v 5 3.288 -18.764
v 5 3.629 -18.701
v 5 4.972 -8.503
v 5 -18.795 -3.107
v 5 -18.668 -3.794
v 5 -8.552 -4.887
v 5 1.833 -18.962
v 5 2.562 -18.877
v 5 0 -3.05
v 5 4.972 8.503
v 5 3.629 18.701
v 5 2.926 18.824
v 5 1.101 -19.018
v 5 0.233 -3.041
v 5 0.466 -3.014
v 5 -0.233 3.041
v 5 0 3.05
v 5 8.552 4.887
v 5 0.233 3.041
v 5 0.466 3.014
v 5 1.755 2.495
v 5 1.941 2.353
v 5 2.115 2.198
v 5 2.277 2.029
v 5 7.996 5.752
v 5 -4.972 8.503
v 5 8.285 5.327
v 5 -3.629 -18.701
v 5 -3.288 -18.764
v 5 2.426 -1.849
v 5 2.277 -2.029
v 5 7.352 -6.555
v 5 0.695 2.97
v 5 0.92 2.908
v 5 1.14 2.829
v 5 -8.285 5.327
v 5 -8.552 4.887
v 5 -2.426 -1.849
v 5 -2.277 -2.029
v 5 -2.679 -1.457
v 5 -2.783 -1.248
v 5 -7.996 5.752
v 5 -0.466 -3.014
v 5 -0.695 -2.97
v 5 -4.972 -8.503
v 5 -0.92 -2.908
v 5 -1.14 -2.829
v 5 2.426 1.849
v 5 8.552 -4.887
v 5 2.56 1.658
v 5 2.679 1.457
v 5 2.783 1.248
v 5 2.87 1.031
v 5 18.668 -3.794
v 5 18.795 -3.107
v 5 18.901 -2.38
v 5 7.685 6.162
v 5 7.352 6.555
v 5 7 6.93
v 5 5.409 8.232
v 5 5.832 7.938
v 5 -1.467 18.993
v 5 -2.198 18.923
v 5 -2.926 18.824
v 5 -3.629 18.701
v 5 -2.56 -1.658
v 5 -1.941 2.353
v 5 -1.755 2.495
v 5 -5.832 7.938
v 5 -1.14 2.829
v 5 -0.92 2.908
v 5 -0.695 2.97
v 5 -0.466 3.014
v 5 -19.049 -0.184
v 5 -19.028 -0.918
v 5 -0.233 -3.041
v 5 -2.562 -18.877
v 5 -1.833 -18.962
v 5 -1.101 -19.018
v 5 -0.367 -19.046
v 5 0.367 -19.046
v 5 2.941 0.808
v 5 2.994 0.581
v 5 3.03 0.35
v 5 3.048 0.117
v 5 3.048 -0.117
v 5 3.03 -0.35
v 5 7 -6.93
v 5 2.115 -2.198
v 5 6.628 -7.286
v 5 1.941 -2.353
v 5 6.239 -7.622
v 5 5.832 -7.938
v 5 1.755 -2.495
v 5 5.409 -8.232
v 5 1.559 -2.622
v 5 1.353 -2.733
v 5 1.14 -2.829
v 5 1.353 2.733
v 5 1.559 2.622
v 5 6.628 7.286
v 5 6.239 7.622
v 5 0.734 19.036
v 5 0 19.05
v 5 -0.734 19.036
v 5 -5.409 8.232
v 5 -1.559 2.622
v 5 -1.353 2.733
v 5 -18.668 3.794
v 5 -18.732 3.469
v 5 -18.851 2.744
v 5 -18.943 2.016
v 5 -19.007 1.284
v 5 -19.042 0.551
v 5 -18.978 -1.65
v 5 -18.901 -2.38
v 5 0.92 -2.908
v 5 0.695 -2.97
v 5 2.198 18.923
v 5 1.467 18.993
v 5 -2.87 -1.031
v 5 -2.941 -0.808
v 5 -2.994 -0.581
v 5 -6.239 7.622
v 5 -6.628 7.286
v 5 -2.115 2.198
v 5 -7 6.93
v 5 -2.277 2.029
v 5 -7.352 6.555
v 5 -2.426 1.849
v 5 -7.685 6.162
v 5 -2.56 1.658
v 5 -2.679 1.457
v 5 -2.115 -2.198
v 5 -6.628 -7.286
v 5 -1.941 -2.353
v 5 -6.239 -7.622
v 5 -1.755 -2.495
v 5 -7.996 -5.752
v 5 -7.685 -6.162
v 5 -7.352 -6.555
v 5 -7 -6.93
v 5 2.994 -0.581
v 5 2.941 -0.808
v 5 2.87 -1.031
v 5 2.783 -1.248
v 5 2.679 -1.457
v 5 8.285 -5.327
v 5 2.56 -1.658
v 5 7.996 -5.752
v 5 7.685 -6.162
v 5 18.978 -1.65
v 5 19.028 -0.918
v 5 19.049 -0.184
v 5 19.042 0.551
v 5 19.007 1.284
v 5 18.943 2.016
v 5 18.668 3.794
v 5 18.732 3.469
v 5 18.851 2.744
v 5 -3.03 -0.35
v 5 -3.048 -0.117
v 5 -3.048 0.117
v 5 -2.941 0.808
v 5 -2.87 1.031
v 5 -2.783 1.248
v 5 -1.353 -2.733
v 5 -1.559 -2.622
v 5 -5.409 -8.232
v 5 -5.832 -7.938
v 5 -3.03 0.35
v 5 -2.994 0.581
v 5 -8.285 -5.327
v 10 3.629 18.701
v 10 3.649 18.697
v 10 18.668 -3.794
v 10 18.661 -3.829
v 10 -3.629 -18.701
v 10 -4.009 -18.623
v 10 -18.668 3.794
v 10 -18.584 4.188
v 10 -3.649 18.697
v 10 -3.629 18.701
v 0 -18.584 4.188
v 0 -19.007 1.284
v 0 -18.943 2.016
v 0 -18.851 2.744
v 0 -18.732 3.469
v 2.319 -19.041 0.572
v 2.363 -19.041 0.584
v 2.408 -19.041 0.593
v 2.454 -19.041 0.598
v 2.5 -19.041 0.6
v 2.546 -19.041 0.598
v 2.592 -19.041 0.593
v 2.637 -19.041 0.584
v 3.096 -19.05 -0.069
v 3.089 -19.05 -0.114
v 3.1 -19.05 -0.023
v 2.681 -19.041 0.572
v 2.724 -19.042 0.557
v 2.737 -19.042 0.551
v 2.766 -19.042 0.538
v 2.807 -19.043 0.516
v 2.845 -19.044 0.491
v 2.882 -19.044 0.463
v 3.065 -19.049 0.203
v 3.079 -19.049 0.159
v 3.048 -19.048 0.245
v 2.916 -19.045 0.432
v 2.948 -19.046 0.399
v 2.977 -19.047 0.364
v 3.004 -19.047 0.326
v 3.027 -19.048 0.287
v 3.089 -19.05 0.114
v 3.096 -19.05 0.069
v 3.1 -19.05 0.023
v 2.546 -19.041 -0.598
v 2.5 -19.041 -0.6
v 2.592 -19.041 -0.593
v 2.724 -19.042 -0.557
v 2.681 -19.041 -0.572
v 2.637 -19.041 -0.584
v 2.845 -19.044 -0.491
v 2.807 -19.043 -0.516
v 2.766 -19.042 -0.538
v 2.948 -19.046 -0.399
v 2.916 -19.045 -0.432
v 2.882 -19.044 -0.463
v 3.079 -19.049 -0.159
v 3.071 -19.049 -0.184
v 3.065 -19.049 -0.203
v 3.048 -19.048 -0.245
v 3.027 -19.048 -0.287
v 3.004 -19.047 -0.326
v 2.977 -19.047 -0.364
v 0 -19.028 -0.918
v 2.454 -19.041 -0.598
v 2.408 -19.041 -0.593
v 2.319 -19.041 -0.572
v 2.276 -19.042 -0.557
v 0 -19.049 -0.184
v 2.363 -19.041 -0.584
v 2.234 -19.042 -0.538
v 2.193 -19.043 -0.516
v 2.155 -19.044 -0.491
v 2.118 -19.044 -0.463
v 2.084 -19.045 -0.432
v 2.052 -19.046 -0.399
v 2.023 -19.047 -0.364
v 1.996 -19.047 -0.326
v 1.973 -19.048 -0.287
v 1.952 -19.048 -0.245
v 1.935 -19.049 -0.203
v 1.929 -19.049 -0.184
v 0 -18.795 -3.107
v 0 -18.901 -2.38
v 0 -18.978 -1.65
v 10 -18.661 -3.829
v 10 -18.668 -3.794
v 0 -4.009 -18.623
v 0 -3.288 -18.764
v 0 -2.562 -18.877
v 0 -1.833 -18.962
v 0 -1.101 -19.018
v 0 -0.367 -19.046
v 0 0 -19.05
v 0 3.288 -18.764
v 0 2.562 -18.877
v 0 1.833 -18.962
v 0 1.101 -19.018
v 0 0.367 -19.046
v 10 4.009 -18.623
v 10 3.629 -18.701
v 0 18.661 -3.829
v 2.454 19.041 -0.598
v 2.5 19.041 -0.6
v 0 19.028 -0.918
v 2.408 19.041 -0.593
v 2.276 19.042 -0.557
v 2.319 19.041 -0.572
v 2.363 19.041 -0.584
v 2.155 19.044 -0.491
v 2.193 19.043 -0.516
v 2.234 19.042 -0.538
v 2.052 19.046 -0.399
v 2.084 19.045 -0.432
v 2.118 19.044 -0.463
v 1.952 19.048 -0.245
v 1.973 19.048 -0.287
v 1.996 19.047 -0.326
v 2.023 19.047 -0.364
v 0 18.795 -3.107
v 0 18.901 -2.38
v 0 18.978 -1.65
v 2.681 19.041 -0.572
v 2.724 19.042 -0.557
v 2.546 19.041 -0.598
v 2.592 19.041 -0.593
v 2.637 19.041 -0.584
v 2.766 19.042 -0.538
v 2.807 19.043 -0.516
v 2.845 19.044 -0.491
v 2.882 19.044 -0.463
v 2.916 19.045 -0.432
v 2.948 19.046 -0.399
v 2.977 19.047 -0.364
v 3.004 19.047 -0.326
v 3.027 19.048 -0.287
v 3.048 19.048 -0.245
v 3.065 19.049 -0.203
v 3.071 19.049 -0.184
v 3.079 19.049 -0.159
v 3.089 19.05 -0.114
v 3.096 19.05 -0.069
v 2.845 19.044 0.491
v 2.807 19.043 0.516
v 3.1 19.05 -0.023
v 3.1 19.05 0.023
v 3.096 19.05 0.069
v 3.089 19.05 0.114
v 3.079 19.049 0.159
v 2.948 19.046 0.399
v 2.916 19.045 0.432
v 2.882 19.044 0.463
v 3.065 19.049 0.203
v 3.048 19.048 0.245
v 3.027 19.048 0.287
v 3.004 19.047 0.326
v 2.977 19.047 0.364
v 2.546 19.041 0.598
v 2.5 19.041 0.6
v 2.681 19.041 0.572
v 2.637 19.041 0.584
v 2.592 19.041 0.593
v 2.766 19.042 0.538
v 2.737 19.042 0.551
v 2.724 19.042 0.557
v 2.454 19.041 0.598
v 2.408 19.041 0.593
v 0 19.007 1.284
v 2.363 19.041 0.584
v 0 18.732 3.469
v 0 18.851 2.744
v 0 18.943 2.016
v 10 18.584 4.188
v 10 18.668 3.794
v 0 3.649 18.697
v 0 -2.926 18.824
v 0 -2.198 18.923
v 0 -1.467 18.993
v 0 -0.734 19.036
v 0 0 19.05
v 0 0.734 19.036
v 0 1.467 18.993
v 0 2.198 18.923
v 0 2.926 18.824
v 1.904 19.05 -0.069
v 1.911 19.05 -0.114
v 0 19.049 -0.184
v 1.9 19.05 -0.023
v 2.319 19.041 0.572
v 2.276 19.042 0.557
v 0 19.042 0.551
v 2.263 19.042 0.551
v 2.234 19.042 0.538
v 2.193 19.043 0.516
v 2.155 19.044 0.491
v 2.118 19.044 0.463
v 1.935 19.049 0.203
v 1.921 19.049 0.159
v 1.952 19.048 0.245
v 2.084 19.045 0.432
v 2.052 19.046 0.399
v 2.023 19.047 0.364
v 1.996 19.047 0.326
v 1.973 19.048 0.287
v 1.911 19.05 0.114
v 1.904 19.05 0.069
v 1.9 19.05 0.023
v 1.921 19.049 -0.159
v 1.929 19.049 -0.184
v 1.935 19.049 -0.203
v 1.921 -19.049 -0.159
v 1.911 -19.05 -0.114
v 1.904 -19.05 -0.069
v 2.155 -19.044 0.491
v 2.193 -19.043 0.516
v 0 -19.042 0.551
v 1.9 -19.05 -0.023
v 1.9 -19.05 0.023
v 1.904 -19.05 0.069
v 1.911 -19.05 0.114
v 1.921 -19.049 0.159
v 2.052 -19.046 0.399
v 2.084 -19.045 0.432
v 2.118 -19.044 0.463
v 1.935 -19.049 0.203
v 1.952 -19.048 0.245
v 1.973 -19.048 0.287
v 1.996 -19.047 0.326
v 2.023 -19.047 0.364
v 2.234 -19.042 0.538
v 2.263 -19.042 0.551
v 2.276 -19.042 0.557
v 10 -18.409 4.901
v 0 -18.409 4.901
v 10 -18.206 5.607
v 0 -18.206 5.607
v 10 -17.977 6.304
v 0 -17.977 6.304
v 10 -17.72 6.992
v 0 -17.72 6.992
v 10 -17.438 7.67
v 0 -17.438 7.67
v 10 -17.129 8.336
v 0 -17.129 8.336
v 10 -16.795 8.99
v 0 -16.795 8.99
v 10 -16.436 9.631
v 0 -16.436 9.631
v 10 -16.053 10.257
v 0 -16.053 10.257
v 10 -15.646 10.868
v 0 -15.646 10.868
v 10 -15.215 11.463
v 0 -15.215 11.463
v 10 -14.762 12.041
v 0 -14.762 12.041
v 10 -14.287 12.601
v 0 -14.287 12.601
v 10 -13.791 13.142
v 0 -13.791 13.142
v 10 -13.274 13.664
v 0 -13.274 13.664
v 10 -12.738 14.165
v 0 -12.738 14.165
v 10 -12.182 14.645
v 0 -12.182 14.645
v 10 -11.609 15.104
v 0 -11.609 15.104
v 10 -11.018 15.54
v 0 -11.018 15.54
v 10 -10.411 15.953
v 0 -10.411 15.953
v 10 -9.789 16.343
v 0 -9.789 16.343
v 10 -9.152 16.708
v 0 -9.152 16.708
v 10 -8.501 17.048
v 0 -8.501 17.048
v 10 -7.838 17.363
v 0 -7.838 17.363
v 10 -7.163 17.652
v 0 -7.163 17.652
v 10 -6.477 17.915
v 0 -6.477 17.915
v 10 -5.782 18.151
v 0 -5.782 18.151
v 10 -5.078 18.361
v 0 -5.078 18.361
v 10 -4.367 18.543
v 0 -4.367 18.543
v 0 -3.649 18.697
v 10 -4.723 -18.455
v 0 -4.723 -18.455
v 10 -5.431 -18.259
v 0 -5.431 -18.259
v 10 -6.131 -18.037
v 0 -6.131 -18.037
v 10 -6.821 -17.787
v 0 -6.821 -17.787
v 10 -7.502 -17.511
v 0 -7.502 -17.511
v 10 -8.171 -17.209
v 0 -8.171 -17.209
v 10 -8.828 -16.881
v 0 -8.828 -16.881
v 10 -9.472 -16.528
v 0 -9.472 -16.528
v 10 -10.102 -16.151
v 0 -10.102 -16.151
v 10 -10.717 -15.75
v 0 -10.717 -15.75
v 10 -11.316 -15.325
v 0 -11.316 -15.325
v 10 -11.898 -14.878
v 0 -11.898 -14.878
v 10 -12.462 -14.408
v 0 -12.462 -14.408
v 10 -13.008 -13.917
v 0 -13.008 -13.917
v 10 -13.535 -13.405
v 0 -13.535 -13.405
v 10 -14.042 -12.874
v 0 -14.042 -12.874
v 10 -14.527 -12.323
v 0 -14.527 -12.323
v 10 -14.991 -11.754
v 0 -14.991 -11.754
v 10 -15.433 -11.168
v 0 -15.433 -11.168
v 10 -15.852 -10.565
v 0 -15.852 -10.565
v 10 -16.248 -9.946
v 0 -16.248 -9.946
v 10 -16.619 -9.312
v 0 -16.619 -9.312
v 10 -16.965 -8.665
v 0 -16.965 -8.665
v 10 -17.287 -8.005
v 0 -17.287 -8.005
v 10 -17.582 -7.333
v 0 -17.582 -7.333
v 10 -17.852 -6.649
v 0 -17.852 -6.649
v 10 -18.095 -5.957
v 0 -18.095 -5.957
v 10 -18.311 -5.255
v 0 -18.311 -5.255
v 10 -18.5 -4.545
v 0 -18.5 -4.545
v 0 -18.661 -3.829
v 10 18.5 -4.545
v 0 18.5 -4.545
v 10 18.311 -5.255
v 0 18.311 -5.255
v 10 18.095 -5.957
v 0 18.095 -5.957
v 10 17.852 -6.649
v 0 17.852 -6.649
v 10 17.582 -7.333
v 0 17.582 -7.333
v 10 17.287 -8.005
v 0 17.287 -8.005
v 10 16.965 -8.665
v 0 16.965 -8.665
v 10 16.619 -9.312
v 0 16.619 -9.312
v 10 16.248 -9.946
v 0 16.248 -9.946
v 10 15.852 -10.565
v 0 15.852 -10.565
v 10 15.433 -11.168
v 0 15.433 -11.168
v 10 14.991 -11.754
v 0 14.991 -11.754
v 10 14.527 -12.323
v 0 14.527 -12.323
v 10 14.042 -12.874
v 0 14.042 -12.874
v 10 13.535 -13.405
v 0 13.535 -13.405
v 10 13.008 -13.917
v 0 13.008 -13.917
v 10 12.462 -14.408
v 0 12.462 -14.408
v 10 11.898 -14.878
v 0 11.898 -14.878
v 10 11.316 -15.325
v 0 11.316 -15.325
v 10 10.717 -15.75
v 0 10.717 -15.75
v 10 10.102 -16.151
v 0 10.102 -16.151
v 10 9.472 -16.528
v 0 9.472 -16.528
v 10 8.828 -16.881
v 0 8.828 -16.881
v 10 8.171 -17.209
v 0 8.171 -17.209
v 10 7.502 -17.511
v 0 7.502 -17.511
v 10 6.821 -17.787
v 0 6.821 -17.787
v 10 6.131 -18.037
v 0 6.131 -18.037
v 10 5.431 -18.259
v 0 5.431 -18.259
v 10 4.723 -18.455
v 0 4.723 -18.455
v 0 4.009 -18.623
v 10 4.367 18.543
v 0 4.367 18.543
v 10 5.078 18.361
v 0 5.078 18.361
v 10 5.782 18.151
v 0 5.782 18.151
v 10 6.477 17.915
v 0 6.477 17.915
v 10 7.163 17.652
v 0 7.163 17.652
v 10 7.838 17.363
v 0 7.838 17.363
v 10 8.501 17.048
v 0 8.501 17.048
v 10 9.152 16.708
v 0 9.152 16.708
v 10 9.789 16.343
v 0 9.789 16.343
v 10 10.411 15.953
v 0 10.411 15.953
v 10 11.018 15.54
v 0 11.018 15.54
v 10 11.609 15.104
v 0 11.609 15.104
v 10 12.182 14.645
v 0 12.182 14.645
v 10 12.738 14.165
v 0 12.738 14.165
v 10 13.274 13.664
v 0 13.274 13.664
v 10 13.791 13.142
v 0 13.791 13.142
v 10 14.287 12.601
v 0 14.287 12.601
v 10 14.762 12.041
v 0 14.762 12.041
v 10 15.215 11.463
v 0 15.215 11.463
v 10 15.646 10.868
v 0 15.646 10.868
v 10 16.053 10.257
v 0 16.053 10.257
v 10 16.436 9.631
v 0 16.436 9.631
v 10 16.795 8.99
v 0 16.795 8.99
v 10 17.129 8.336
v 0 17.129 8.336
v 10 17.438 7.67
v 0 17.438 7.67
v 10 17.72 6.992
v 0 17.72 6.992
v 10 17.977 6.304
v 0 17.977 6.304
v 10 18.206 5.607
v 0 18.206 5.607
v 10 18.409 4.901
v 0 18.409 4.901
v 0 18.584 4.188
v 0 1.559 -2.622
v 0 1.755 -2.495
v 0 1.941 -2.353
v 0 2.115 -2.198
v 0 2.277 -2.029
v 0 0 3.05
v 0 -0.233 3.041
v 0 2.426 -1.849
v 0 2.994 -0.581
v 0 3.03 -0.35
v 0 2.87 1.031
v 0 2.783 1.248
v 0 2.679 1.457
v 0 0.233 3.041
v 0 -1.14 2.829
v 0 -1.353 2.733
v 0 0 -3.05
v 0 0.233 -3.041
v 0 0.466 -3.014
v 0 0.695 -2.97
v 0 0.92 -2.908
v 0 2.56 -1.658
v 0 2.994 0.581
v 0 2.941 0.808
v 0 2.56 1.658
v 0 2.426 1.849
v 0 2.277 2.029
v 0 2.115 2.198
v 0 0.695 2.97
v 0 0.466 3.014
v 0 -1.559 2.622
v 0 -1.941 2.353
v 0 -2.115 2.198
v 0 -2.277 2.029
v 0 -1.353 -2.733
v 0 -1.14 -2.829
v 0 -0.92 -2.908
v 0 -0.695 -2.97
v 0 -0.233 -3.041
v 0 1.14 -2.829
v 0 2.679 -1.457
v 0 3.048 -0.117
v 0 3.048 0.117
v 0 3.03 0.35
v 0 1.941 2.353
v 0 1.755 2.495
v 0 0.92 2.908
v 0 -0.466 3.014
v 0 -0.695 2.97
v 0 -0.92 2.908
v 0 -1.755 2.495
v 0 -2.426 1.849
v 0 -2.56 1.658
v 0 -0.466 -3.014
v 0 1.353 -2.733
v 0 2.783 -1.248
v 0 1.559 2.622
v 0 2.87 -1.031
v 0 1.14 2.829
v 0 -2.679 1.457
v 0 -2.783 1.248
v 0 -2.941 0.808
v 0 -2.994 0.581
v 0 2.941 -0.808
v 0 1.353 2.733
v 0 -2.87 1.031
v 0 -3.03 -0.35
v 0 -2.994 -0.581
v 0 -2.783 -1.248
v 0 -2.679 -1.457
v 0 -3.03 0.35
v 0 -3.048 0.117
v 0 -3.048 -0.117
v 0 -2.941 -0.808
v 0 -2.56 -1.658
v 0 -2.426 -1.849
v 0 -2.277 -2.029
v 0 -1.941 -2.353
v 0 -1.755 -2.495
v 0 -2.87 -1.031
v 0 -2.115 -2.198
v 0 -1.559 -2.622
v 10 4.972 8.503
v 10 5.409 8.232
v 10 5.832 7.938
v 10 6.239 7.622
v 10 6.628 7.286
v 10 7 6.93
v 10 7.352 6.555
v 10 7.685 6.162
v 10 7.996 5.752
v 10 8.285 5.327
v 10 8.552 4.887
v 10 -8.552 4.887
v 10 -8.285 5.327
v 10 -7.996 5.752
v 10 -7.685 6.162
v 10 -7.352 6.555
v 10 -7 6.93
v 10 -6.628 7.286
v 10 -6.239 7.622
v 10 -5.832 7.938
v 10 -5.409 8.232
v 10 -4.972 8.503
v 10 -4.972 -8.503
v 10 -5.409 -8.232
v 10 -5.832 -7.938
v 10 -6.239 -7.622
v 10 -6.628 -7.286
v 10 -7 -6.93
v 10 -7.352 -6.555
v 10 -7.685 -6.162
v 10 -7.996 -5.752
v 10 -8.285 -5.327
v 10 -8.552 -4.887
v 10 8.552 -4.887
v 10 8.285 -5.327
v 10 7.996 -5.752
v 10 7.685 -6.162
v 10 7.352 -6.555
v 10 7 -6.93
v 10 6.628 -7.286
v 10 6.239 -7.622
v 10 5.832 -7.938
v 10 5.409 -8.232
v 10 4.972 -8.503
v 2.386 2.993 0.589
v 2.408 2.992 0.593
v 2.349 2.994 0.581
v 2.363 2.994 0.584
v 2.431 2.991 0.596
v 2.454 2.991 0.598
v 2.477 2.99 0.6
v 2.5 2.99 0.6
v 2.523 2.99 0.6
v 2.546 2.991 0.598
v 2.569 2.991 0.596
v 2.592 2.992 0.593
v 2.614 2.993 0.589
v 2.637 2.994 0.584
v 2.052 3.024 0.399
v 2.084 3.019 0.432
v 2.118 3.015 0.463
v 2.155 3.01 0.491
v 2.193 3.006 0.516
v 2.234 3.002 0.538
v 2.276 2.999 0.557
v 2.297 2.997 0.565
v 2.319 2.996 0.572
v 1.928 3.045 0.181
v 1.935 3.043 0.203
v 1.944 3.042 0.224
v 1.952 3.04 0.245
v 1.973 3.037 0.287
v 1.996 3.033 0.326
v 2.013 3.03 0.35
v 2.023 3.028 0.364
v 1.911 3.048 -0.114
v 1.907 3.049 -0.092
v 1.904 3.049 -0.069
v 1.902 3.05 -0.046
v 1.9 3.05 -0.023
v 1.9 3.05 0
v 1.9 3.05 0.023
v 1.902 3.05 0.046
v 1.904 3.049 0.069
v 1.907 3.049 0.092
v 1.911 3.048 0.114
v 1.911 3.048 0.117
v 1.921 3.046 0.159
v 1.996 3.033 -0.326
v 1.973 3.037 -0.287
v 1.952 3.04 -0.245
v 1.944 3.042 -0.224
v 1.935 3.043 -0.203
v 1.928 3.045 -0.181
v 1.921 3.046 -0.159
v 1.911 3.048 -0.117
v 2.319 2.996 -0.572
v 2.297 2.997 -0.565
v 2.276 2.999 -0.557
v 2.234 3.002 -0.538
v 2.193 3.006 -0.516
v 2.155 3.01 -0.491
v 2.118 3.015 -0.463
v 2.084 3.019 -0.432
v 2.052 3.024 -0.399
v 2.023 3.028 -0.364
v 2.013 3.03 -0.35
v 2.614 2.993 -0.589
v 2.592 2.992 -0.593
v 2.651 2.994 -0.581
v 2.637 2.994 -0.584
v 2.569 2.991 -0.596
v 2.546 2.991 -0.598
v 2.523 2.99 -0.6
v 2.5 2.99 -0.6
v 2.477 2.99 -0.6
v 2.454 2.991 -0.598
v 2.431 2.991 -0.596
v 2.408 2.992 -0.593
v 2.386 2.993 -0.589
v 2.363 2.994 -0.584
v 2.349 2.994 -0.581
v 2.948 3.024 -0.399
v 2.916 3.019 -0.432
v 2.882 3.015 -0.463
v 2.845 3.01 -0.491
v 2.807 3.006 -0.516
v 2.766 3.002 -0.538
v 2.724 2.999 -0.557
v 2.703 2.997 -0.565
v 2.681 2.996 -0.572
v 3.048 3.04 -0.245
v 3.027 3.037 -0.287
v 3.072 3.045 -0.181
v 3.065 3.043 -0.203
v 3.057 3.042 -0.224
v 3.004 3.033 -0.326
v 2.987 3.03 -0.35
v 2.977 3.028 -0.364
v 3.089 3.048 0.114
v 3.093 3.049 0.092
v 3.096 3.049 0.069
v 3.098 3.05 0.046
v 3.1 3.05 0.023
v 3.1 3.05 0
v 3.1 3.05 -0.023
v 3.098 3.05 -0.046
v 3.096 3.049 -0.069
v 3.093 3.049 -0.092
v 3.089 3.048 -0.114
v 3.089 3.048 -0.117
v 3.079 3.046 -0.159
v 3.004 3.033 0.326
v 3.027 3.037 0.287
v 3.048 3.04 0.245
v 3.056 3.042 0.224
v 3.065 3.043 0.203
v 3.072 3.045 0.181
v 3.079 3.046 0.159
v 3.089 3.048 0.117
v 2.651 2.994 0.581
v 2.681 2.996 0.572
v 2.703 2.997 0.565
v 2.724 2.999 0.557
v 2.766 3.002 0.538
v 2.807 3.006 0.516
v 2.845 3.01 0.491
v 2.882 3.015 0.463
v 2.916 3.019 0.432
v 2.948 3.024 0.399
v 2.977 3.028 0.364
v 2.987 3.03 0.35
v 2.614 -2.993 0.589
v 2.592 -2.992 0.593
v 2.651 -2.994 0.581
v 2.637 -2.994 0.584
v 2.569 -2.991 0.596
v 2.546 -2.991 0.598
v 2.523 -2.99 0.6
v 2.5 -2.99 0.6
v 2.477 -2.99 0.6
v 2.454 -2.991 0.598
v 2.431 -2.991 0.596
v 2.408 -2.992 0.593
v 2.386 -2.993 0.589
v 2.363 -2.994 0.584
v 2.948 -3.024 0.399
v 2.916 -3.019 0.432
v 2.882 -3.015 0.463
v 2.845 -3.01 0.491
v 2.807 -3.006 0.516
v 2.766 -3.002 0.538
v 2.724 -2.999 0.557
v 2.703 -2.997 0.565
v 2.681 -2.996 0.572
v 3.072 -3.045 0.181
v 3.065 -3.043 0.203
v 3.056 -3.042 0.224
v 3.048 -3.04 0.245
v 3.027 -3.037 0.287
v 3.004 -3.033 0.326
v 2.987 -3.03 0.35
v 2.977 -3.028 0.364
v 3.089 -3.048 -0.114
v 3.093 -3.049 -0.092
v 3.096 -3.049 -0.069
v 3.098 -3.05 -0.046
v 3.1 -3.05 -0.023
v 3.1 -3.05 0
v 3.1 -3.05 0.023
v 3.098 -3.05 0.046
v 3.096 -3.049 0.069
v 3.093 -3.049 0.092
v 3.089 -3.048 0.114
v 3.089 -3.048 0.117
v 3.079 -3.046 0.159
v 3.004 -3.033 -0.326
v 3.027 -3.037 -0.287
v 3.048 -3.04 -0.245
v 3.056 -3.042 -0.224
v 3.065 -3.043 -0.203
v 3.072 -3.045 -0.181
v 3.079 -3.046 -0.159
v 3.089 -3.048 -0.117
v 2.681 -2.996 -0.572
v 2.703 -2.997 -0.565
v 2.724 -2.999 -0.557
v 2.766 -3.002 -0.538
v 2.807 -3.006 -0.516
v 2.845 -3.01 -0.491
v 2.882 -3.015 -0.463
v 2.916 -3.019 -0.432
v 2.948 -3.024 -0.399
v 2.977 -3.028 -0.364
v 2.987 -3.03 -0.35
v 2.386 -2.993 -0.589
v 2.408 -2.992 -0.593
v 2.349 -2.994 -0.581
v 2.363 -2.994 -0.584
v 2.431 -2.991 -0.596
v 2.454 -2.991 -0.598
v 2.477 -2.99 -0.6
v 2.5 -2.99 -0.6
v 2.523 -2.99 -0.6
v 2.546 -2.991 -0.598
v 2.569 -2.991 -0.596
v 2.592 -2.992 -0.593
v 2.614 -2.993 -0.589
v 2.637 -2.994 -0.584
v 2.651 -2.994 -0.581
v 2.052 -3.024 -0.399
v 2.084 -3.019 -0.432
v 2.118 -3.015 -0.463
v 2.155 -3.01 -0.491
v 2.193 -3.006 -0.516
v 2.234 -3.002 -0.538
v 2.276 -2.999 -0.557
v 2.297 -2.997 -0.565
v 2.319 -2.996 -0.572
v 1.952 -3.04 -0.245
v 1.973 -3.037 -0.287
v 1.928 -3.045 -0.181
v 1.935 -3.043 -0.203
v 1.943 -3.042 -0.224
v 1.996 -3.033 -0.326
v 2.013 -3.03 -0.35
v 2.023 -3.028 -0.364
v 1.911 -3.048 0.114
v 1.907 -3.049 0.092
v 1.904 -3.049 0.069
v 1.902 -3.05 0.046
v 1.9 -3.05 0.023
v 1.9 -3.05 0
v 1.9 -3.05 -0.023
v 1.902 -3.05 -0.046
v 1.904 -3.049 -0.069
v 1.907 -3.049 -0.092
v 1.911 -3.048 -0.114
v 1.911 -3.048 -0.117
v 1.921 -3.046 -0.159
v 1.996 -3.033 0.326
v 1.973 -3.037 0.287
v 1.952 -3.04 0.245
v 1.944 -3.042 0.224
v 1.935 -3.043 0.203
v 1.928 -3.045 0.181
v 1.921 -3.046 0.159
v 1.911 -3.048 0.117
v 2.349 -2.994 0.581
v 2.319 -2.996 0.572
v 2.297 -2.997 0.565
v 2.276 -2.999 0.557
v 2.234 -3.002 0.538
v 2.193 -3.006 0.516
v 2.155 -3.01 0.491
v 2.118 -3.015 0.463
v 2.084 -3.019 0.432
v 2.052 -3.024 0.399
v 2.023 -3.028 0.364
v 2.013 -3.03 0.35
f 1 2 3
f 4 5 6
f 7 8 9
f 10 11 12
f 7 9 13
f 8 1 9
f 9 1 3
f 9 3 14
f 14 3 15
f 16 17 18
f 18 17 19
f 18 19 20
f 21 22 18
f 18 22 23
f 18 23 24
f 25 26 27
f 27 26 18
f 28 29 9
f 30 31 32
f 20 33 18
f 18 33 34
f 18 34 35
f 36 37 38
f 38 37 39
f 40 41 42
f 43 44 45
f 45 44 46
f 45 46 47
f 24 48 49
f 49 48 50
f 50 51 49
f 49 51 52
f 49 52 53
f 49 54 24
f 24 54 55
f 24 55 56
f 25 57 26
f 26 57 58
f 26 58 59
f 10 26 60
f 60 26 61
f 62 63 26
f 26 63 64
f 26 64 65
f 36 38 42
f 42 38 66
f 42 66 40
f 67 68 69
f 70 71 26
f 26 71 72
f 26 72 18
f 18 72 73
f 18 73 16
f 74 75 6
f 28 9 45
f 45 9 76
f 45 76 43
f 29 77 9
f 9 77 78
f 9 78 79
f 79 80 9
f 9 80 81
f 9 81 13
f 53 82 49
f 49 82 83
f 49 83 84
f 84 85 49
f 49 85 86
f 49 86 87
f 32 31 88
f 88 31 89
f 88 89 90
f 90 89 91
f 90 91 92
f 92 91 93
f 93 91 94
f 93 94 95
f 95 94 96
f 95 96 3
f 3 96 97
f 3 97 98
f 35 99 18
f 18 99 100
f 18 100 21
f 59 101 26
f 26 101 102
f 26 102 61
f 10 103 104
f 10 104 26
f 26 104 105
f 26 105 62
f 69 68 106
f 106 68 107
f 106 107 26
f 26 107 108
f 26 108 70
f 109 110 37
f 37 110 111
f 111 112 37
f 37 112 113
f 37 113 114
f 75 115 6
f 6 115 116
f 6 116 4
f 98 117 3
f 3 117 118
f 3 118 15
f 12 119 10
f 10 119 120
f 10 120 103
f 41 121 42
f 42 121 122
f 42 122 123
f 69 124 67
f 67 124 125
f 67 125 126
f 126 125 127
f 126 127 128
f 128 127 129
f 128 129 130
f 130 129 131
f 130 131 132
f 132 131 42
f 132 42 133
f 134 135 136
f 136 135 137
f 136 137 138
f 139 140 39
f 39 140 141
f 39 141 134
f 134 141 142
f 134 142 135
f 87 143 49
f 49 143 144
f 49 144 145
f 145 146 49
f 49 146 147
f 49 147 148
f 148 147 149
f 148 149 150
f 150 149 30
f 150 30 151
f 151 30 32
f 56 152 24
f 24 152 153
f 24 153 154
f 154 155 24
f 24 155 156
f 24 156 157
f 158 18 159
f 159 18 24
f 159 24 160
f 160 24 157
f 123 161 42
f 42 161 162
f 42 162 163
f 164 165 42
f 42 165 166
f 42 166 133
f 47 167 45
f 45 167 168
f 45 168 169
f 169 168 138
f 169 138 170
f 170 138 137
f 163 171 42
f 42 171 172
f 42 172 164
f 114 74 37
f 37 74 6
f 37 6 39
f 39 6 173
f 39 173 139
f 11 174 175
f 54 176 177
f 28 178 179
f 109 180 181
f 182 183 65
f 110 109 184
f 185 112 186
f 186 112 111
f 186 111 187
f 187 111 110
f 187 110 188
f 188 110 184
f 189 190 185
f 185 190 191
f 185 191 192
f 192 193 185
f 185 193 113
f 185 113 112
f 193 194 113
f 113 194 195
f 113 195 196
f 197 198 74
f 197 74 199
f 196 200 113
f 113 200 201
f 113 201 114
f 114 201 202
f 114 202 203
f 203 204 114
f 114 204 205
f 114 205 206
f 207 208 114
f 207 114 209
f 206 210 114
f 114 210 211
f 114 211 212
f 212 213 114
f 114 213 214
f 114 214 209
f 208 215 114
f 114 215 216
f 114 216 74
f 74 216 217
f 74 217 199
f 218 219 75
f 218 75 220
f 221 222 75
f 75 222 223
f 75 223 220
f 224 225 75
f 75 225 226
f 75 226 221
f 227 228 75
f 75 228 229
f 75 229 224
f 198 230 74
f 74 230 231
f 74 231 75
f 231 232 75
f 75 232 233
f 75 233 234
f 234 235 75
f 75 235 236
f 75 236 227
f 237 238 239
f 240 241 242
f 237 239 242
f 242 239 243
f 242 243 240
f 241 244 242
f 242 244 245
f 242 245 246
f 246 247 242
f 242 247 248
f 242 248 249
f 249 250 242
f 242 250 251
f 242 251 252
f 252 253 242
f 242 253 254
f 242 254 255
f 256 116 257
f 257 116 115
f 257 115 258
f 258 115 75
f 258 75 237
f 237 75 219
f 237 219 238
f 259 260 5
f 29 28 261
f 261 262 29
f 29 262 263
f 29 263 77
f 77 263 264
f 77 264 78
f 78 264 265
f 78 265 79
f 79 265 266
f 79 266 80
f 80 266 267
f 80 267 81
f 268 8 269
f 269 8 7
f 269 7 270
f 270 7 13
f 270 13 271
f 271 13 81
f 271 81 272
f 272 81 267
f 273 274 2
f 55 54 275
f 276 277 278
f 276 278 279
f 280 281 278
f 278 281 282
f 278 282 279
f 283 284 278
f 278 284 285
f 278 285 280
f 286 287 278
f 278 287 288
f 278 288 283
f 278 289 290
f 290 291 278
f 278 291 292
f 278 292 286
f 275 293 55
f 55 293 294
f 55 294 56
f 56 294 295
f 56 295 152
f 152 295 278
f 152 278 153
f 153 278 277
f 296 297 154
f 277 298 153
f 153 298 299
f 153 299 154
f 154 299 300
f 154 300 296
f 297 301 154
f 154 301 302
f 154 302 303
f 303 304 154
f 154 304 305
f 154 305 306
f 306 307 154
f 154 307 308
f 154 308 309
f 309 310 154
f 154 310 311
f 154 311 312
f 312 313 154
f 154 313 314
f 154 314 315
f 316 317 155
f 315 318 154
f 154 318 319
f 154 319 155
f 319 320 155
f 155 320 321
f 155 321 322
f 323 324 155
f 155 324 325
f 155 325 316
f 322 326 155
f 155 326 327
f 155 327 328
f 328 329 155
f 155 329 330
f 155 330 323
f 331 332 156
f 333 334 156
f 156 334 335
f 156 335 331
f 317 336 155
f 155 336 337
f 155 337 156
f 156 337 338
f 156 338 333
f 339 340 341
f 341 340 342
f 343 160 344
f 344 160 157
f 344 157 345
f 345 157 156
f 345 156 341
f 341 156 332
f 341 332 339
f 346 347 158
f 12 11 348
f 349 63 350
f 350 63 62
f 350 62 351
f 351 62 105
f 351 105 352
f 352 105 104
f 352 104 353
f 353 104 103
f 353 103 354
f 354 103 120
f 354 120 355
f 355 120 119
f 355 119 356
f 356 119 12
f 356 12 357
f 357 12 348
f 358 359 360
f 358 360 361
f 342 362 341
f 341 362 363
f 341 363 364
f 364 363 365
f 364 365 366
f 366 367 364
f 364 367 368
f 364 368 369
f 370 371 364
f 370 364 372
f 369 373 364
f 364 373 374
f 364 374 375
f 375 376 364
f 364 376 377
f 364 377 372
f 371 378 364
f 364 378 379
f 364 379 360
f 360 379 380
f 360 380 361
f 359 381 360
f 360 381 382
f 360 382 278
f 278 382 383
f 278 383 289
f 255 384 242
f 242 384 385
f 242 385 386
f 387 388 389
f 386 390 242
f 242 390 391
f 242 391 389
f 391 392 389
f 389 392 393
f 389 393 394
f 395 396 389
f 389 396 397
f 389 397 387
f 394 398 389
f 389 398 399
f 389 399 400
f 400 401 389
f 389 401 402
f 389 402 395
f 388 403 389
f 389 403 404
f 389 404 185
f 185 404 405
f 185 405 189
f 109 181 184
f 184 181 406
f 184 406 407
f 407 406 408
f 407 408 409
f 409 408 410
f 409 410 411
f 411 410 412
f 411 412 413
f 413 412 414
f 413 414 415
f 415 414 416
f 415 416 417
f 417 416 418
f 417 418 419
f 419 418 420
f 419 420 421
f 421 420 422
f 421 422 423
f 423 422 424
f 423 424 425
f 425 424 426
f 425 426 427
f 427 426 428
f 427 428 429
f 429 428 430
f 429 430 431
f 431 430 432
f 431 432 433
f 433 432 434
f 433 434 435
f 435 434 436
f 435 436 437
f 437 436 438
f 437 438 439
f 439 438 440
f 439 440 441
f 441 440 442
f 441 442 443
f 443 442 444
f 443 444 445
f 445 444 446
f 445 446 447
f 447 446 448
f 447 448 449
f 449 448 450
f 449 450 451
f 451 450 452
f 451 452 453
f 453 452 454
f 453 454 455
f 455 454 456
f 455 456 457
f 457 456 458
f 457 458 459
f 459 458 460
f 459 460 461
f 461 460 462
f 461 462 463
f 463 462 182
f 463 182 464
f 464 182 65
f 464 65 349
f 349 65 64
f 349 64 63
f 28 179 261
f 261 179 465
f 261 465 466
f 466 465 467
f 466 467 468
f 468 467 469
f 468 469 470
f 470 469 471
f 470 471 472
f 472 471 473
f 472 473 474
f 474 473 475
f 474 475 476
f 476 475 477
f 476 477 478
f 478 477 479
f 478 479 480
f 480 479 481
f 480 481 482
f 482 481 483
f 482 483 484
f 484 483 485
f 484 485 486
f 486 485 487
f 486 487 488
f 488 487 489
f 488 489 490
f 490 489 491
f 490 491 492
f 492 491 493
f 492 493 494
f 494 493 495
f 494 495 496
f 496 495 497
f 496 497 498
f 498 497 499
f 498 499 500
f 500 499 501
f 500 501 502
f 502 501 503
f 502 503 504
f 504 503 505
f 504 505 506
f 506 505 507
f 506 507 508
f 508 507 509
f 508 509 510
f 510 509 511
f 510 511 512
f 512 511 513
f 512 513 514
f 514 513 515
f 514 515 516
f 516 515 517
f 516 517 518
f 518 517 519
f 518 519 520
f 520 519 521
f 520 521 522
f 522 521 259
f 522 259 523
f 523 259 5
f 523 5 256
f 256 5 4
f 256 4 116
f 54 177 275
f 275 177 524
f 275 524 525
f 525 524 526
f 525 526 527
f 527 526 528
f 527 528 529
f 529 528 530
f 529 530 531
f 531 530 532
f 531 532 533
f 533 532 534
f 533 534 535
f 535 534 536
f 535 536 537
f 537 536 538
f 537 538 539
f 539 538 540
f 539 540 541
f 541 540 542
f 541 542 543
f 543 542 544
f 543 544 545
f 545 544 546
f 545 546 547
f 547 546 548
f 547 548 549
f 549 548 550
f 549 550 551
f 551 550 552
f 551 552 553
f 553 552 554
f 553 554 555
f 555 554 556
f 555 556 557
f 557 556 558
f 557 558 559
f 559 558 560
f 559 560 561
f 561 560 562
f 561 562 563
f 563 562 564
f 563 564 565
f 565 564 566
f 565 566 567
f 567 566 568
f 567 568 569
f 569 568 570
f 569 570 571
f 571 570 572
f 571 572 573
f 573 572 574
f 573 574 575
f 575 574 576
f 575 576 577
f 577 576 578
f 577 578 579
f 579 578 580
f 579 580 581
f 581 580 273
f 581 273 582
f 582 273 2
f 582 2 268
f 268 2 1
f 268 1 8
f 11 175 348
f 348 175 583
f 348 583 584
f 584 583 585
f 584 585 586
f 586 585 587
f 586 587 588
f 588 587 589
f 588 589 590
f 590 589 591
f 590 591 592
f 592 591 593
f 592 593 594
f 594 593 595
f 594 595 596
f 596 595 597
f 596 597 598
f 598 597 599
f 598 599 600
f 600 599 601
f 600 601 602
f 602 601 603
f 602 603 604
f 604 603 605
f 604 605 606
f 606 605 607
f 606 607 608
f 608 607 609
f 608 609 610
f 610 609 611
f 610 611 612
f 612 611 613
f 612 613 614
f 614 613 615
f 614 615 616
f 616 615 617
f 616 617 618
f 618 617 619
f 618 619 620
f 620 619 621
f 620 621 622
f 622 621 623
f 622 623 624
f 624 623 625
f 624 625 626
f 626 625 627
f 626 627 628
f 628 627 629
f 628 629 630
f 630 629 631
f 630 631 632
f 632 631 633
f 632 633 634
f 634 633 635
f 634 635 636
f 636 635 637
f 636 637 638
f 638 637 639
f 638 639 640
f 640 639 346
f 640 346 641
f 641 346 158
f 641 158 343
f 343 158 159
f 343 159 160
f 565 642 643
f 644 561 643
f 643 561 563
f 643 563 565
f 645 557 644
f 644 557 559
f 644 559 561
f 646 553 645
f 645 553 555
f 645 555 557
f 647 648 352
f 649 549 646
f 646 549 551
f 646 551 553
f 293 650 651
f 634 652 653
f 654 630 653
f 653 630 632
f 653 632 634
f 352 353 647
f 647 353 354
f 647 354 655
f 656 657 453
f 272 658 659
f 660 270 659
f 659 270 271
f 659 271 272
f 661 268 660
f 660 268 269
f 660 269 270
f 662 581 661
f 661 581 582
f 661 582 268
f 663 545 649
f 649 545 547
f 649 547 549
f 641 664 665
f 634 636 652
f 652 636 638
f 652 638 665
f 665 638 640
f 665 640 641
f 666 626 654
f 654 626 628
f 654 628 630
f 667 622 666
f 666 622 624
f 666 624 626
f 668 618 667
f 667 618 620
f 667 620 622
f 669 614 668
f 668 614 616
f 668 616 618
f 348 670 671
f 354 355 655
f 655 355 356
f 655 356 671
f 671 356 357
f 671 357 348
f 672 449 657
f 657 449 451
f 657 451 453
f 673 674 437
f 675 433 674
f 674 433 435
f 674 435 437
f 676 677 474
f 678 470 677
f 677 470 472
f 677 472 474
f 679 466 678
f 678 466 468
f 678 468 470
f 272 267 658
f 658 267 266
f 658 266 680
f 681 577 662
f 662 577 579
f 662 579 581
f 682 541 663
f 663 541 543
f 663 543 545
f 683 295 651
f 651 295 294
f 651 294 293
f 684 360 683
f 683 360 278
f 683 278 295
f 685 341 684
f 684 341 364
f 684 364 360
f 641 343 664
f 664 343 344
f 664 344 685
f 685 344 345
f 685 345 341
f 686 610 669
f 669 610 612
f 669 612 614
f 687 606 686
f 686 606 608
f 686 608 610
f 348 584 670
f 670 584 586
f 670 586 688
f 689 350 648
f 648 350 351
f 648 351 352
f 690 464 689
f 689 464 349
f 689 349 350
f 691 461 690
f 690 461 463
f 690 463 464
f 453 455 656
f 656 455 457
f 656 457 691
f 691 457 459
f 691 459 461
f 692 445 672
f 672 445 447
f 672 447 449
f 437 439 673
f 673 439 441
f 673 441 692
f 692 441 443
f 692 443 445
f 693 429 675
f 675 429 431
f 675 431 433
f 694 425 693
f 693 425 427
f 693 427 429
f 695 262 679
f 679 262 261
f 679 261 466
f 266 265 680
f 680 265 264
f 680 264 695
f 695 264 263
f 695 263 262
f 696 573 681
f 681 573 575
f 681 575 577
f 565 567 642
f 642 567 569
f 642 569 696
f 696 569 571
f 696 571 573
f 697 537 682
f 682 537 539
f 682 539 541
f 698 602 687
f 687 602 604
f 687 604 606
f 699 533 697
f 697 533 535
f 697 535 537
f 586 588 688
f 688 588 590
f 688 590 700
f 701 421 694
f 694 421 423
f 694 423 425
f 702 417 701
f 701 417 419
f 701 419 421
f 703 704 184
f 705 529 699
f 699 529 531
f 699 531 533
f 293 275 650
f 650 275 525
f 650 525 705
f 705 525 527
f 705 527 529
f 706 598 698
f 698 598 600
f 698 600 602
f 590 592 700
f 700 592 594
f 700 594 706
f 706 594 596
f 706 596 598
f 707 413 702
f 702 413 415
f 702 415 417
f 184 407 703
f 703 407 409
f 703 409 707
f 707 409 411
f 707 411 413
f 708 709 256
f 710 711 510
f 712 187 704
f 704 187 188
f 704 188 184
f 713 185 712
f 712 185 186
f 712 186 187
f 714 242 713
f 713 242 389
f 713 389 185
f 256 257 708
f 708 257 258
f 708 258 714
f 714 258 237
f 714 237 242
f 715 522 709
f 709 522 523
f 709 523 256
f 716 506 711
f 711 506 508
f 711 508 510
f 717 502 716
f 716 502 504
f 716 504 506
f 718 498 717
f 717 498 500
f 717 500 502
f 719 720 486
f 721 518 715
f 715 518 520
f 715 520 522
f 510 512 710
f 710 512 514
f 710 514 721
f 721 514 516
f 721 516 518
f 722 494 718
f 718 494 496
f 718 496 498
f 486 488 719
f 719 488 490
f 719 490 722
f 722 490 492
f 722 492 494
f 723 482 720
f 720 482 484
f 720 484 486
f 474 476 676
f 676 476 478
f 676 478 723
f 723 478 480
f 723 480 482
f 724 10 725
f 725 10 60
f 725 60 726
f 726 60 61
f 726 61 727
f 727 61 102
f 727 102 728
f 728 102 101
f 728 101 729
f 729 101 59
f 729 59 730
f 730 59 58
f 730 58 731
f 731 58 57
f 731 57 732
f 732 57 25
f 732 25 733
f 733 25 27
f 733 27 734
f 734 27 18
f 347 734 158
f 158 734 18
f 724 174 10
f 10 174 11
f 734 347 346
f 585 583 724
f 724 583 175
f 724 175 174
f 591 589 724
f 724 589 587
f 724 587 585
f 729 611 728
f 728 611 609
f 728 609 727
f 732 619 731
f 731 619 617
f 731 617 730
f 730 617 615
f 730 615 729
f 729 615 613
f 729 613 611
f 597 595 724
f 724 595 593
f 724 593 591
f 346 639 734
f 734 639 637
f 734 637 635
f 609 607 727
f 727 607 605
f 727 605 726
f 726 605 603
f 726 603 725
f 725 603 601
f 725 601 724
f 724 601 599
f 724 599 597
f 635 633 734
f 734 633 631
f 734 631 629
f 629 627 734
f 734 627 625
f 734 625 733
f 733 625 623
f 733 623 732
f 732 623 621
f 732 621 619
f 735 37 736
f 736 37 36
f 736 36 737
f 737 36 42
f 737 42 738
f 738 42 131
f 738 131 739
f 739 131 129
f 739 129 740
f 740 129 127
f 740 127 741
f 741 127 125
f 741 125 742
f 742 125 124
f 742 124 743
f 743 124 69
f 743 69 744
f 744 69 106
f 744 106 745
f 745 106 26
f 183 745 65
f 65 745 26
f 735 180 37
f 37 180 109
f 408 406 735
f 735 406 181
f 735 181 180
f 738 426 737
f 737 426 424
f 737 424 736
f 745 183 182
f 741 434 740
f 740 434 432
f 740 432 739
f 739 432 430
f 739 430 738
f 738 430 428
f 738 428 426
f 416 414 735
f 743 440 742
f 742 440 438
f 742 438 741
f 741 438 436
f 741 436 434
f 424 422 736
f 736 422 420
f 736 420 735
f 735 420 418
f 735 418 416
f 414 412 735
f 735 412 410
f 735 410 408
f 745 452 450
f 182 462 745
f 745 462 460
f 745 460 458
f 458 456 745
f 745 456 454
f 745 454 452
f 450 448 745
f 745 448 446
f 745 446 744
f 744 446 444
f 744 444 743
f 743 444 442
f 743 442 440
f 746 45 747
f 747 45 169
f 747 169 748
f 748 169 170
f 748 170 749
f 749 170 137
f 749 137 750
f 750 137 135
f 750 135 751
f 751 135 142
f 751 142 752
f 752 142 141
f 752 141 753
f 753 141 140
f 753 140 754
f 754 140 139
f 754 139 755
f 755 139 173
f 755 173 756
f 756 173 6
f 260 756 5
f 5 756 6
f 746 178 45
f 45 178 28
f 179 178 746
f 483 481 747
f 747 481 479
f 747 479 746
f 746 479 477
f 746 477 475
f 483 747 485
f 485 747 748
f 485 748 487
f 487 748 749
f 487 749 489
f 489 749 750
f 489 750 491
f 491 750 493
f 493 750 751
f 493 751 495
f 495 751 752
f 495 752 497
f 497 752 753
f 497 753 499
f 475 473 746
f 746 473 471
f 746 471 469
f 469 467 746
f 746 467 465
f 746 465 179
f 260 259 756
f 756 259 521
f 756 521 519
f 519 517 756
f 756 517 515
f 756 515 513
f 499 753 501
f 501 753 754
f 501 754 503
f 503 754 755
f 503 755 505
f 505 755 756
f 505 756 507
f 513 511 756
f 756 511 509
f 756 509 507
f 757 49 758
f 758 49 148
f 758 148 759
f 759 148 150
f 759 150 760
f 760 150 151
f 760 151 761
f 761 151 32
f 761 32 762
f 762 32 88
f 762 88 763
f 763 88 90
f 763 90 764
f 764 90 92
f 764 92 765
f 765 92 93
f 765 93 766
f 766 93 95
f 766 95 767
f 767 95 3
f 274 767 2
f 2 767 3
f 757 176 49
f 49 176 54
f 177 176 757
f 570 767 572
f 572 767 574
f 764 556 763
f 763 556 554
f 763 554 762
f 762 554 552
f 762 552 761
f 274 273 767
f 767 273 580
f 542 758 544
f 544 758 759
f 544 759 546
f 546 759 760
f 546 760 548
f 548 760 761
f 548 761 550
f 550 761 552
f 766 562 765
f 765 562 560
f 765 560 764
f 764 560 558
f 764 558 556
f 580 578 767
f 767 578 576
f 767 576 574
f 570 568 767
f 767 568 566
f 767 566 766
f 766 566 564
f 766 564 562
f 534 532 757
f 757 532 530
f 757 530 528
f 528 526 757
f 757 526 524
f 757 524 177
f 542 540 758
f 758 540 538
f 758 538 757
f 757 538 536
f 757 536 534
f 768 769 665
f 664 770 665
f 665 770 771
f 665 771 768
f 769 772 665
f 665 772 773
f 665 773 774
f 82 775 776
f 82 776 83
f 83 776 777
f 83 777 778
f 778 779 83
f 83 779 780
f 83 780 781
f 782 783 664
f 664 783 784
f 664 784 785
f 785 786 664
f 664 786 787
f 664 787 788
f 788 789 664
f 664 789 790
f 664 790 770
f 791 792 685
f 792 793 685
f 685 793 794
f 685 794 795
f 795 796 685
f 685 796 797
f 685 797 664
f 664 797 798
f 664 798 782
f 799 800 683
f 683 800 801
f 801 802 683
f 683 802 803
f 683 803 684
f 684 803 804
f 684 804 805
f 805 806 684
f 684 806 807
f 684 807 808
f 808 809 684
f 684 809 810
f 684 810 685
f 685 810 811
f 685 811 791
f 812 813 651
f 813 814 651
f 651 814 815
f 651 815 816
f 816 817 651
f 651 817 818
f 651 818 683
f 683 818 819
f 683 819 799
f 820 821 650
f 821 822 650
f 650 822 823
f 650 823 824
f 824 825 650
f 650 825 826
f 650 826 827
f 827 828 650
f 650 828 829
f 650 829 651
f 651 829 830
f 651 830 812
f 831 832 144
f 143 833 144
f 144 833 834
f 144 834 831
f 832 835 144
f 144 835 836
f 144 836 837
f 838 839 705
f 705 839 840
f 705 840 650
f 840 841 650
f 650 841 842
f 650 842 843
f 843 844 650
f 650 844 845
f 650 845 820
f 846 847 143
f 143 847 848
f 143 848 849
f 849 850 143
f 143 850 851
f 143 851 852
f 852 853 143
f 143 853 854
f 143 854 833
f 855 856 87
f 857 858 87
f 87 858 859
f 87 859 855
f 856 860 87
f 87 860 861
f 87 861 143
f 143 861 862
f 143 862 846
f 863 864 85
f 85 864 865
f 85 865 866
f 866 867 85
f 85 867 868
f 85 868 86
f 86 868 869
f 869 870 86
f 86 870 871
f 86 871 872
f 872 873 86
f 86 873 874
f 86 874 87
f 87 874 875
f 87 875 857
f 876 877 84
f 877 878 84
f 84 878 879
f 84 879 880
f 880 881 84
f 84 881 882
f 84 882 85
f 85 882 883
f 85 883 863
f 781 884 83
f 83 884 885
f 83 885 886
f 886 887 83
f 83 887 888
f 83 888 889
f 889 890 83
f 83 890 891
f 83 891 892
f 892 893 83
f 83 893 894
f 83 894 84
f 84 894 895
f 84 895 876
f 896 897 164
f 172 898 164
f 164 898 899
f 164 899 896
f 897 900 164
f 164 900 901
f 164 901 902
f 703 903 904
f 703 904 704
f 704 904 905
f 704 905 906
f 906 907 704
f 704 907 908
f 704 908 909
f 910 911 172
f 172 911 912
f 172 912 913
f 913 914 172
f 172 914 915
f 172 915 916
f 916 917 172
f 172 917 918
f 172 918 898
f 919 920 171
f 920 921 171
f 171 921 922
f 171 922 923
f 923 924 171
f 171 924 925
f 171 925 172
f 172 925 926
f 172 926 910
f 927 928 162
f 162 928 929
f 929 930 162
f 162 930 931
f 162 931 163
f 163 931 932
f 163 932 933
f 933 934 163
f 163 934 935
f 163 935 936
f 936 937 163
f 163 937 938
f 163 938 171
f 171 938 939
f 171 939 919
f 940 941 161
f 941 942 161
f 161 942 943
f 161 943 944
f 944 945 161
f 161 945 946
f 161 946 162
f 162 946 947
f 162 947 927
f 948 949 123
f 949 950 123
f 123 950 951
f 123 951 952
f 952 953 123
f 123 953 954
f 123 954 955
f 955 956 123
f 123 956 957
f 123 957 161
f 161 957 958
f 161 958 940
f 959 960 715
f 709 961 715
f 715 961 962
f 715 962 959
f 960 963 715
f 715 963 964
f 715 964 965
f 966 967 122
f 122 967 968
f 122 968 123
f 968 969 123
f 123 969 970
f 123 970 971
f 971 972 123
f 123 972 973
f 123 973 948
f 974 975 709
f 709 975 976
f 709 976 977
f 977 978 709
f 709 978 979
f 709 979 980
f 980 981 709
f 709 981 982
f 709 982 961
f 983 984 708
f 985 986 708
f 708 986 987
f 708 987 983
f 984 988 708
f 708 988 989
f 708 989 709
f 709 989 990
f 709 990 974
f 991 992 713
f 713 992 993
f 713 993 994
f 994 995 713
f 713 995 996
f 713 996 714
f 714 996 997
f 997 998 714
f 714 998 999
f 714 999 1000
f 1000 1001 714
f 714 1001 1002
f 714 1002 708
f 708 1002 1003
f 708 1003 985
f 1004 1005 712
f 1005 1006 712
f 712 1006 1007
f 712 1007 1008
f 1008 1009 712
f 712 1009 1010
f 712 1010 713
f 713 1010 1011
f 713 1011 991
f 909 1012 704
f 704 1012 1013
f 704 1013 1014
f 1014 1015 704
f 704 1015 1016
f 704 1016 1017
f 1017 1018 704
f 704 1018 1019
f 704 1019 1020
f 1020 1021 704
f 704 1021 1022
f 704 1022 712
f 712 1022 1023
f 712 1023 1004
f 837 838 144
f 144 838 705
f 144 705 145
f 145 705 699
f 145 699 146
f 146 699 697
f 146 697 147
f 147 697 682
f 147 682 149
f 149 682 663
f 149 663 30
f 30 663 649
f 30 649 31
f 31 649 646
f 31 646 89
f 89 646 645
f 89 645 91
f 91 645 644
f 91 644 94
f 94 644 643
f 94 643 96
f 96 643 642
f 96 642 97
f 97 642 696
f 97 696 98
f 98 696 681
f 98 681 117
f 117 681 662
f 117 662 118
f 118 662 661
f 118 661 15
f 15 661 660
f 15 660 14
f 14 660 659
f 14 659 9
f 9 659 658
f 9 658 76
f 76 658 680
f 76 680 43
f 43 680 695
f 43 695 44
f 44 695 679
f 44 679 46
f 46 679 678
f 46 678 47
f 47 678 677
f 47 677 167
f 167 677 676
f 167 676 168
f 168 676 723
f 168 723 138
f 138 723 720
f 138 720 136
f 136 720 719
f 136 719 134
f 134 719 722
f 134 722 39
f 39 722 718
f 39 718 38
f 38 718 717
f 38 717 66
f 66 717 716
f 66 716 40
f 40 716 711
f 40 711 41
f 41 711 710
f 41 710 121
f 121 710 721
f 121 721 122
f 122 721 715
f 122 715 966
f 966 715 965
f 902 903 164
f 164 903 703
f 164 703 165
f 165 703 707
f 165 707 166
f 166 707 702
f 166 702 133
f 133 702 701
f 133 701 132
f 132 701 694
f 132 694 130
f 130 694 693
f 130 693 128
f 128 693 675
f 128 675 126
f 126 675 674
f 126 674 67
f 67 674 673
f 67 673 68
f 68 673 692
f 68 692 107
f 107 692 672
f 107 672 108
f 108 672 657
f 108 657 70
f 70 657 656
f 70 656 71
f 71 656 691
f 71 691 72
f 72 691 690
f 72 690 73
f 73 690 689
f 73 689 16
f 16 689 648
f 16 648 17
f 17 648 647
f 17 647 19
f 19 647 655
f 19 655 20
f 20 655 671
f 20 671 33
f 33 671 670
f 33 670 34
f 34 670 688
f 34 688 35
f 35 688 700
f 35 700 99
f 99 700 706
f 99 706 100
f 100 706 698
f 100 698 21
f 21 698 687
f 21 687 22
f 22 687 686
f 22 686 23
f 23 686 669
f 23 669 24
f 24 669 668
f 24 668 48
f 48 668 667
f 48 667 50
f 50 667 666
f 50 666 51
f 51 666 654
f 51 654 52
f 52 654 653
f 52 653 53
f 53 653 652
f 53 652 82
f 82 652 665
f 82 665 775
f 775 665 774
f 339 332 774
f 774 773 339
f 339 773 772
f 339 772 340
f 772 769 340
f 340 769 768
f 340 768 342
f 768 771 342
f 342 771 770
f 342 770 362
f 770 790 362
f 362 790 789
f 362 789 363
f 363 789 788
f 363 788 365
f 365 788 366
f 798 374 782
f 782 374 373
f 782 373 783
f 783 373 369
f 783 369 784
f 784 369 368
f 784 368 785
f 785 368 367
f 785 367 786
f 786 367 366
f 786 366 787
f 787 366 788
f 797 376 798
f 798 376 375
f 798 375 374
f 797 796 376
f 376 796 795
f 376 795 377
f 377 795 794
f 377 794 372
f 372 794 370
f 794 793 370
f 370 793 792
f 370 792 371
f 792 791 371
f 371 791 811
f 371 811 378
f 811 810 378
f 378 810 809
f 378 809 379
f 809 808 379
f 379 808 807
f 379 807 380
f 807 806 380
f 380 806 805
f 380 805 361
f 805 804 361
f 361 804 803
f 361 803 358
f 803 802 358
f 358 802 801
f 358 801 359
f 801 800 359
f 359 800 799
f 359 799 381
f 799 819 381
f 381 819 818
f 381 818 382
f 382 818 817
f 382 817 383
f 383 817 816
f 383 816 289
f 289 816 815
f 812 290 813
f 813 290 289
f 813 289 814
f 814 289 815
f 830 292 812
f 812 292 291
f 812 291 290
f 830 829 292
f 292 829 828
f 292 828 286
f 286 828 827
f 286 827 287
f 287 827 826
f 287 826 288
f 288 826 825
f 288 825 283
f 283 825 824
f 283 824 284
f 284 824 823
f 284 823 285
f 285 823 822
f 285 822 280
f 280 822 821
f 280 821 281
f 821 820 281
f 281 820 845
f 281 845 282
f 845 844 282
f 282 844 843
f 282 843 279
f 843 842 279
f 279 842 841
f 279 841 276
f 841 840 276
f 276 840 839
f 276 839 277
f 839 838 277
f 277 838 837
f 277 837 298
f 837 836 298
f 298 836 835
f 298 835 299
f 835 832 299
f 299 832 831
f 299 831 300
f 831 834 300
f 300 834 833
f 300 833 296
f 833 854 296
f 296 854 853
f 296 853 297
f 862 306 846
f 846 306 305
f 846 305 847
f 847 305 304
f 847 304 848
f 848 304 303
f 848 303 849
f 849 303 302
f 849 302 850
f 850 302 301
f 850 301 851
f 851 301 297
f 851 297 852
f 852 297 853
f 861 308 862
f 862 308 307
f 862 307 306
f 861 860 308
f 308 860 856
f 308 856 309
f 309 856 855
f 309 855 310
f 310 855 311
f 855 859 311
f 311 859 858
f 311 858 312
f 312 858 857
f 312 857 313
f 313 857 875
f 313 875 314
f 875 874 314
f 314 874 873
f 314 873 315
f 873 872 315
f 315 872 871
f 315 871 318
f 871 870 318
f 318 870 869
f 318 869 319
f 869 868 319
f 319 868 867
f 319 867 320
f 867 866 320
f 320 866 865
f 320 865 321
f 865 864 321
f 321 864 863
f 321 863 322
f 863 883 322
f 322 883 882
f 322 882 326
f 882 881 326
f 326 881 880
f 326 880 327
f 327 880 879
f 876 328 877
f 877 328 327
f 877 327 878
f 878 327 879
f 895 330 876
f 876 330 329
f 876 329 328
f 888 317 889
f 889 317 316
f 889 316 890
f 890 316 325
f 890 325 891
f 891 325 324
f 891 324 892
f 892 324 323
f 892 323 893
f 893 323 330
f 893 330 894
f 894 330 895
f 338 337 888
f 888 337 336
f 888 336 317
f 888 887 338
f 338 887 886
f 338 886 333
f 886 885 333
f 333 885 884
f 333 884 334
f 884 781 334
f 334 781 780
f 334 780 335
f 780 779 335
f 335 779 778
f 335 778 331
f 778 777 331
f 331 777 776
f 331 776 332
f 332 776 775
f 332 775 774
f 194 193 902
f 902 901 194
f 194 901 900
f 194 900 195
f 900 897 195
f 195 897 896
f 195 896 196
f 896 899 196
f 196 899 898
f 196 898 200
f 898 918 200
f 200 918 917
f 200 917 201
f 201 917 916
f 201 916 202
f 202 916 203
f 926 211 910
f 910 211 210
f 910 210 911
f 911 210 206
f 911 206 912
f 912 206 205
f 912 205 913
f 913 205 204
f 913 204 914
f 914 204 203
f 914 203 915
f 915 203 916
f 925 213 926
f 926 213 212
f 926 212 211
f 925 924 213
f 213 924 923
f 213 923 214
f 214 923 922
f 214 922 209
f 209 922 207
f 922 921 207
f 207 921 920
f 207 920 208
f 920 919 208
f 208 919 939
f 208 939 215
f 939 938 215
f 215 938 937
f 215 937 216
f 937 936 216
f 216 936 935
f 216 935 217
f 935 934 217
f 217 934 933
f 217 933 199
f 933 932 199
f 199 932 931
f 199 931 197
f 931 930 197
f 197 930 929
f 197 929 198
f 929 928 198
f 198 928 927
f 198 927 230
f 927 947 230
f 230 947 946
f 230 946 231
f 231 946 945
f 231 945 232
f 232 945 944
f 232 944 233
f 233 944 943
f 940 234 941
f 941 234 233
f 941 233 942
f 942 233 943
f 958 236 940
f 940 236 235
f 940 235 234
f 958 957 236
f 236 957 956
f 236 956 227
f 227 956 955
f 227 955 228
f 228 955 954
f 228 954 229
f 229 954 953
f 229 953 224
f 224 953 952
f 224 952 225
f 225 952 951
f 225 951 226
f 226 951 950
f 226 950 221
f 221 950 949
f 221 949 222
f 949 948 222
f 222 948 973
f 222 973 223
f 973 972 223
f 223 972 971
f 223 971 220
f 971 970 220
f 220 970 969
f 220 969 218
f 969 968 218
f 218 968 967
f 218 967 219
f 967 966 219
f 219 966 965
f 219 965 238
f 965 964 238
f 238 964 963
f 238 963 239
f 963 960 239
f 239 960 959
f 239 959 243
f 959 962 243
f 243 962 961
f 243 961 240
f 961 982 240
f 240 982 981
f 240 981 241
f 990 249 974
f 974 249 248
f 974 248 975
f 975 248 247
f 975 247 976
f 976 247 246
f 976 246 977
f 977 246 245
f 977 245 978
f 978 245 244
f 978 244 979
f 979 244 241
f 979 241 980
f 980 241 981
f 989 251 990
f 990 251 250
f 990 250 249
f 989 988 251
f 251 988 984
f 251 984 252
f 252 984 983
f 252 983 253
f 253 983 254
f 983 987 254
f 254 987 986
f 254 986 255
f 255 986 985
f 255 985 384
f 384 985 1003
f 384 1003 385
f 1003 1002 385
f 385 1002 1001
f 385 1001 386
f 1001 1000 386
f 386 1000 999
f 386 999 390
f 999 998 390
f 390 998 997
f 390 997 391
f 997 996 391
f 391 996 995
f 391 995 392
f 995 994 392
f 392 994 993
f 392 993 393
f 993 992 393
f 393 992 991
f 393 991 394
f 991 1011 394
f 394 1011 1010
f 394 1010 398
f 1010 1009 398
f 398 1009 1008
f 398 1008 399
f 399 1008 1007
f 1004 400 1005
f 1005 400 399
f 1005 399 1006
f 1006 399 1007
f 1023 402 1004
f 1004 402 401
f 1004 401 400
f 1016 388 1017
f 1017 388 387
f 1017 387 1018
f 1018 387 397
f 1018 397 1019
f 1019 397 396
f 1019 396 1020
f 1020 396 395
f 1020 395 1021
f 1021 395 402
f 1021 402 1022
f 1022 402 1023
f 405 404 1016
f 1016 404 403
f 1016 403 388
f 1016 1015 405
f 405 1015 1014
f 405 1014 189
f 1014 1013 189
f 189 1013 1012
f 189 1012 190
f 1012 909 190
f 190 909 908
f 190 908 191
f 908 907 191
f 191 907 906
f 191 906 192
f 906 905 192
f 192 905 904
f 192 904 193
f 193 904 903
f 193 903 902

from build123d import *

# Parameters (mm, degrees)
SKETCH2_R           = 19.05
BOSS_EXTRUDE1_DEPTH = 5
BOSS_EXTRUDE2_DEPTH = 5
SKETCH6_R           = 3.05
CUT_EXTRUDE1_DEPTH  = 25
SKETCH8_R           = 0.6
CUT_EXTRUDE4_DEPTH  = 25


with BuildPart() as part:
    # Sketch2 → Boss-Extrude1 (new body)
    with BuildSketch(Plane(origin=(0, 0, 0), x_dir=(0, 0, -1), z_dir=(1, 0, 0))):
        Circle(SKETCH2_R)
    extrude(amount=BOSS_EXTRUDE1_DEPTH)

    # Sketch4 → Boss-Extrude2 (add)
    with BuildSketch(Plane(origin=(5, 0, 0), x_dir=(0, 0, -1), z_dir=(1, 0, 0))):
        with BuildLine():
            Line((4.886596437, 8.552407571), (3.793697076, 18.668432245))
            ThreePointArc((3.793697076, 18.668432245), (13.529522994, 13.410984586), (18.701093352, 3.629270922))
            Line((18.701093352, 3.629270922), (8.502967267, 4.972127076))
            ThreePointArc((8.502967267, 4.972127076), (6.929986014, 6.999842416), (4.886596437, 8.552407571))
        make_face()
        with BuildLine():
            Line((-4.886596437, 8.552407571), (-3.793697076, 18.668432245))
            ThreePointArc((-3.793697076, 18.668432245), (-13.529522994, 13.410984586), (-18.701093352, 3.629270922))
            Line((-18.701093352, 3.629270922), (-8.502967267, 4.972127076))
            ThreePointArc((-8.502967267, 4.972127076), (-6.929986014, 6.999842416), (-4.886596437, 8.552407571))
        make_face()
        with BuildLine():
            Line((-8.502967267, -4.972127076), (-18.701093352, -3.629270922))
            ThreePointArc((-18.701093352, -3.629270922), (-13.529522994, -13.410984586), (-3.793697076, -18.668432245))
            Line((-3.793697076, -18.668432245), (-4.886596437, -8.552407571))
            ThreePointArc((-4.886596437, -8.552407571), (-6.929986014, -6.999842416), (-8.502967267, -4.972127076))
        make_face()
        with BuildLine():
            Line((4.886596437, -8.552407571), (3.793697076, -18.668432245))
            ThreePointArc((3.793697076, -18.668432245), (13.529522994, -13.410984586), (18.701093352, -3.629270922))
            Line((18.701093352, -3.629270922), (8.502967267, -4.972127076))
            ThreePointArc((8.502967267, -4.972127076), (6.929986014, -6.999842416), (4.886596437, -8.552407571))
        make_face()
    extrude(amount=BOSS_EXTRUDE2_DEPTH)

    # Sketch6 → Cut-Extrude1 (cut)
    with BuildSketch(Plane.ZY):
        Circle(SKETCH6_R)
    extrude(amount=-CUT_EXTRUDE1_DEPTH, mode=Mode.SUBTRACT)

    # Sketch8 → Cut-Extrude4 (cut, symmetric)
    with BuildSketch(Plane(origin=(0, 0, 0), x_dir=(1, 0, 0), z_dir=(0, 1, 0))):
        with Locations((2.5, 0)):
            Circle(SKETCH8_R)
    extrude(amount=CUT_EXTRUDE4_DEPTH, both=True, mode=Mode.SUBTRACT)


solid = part.part
